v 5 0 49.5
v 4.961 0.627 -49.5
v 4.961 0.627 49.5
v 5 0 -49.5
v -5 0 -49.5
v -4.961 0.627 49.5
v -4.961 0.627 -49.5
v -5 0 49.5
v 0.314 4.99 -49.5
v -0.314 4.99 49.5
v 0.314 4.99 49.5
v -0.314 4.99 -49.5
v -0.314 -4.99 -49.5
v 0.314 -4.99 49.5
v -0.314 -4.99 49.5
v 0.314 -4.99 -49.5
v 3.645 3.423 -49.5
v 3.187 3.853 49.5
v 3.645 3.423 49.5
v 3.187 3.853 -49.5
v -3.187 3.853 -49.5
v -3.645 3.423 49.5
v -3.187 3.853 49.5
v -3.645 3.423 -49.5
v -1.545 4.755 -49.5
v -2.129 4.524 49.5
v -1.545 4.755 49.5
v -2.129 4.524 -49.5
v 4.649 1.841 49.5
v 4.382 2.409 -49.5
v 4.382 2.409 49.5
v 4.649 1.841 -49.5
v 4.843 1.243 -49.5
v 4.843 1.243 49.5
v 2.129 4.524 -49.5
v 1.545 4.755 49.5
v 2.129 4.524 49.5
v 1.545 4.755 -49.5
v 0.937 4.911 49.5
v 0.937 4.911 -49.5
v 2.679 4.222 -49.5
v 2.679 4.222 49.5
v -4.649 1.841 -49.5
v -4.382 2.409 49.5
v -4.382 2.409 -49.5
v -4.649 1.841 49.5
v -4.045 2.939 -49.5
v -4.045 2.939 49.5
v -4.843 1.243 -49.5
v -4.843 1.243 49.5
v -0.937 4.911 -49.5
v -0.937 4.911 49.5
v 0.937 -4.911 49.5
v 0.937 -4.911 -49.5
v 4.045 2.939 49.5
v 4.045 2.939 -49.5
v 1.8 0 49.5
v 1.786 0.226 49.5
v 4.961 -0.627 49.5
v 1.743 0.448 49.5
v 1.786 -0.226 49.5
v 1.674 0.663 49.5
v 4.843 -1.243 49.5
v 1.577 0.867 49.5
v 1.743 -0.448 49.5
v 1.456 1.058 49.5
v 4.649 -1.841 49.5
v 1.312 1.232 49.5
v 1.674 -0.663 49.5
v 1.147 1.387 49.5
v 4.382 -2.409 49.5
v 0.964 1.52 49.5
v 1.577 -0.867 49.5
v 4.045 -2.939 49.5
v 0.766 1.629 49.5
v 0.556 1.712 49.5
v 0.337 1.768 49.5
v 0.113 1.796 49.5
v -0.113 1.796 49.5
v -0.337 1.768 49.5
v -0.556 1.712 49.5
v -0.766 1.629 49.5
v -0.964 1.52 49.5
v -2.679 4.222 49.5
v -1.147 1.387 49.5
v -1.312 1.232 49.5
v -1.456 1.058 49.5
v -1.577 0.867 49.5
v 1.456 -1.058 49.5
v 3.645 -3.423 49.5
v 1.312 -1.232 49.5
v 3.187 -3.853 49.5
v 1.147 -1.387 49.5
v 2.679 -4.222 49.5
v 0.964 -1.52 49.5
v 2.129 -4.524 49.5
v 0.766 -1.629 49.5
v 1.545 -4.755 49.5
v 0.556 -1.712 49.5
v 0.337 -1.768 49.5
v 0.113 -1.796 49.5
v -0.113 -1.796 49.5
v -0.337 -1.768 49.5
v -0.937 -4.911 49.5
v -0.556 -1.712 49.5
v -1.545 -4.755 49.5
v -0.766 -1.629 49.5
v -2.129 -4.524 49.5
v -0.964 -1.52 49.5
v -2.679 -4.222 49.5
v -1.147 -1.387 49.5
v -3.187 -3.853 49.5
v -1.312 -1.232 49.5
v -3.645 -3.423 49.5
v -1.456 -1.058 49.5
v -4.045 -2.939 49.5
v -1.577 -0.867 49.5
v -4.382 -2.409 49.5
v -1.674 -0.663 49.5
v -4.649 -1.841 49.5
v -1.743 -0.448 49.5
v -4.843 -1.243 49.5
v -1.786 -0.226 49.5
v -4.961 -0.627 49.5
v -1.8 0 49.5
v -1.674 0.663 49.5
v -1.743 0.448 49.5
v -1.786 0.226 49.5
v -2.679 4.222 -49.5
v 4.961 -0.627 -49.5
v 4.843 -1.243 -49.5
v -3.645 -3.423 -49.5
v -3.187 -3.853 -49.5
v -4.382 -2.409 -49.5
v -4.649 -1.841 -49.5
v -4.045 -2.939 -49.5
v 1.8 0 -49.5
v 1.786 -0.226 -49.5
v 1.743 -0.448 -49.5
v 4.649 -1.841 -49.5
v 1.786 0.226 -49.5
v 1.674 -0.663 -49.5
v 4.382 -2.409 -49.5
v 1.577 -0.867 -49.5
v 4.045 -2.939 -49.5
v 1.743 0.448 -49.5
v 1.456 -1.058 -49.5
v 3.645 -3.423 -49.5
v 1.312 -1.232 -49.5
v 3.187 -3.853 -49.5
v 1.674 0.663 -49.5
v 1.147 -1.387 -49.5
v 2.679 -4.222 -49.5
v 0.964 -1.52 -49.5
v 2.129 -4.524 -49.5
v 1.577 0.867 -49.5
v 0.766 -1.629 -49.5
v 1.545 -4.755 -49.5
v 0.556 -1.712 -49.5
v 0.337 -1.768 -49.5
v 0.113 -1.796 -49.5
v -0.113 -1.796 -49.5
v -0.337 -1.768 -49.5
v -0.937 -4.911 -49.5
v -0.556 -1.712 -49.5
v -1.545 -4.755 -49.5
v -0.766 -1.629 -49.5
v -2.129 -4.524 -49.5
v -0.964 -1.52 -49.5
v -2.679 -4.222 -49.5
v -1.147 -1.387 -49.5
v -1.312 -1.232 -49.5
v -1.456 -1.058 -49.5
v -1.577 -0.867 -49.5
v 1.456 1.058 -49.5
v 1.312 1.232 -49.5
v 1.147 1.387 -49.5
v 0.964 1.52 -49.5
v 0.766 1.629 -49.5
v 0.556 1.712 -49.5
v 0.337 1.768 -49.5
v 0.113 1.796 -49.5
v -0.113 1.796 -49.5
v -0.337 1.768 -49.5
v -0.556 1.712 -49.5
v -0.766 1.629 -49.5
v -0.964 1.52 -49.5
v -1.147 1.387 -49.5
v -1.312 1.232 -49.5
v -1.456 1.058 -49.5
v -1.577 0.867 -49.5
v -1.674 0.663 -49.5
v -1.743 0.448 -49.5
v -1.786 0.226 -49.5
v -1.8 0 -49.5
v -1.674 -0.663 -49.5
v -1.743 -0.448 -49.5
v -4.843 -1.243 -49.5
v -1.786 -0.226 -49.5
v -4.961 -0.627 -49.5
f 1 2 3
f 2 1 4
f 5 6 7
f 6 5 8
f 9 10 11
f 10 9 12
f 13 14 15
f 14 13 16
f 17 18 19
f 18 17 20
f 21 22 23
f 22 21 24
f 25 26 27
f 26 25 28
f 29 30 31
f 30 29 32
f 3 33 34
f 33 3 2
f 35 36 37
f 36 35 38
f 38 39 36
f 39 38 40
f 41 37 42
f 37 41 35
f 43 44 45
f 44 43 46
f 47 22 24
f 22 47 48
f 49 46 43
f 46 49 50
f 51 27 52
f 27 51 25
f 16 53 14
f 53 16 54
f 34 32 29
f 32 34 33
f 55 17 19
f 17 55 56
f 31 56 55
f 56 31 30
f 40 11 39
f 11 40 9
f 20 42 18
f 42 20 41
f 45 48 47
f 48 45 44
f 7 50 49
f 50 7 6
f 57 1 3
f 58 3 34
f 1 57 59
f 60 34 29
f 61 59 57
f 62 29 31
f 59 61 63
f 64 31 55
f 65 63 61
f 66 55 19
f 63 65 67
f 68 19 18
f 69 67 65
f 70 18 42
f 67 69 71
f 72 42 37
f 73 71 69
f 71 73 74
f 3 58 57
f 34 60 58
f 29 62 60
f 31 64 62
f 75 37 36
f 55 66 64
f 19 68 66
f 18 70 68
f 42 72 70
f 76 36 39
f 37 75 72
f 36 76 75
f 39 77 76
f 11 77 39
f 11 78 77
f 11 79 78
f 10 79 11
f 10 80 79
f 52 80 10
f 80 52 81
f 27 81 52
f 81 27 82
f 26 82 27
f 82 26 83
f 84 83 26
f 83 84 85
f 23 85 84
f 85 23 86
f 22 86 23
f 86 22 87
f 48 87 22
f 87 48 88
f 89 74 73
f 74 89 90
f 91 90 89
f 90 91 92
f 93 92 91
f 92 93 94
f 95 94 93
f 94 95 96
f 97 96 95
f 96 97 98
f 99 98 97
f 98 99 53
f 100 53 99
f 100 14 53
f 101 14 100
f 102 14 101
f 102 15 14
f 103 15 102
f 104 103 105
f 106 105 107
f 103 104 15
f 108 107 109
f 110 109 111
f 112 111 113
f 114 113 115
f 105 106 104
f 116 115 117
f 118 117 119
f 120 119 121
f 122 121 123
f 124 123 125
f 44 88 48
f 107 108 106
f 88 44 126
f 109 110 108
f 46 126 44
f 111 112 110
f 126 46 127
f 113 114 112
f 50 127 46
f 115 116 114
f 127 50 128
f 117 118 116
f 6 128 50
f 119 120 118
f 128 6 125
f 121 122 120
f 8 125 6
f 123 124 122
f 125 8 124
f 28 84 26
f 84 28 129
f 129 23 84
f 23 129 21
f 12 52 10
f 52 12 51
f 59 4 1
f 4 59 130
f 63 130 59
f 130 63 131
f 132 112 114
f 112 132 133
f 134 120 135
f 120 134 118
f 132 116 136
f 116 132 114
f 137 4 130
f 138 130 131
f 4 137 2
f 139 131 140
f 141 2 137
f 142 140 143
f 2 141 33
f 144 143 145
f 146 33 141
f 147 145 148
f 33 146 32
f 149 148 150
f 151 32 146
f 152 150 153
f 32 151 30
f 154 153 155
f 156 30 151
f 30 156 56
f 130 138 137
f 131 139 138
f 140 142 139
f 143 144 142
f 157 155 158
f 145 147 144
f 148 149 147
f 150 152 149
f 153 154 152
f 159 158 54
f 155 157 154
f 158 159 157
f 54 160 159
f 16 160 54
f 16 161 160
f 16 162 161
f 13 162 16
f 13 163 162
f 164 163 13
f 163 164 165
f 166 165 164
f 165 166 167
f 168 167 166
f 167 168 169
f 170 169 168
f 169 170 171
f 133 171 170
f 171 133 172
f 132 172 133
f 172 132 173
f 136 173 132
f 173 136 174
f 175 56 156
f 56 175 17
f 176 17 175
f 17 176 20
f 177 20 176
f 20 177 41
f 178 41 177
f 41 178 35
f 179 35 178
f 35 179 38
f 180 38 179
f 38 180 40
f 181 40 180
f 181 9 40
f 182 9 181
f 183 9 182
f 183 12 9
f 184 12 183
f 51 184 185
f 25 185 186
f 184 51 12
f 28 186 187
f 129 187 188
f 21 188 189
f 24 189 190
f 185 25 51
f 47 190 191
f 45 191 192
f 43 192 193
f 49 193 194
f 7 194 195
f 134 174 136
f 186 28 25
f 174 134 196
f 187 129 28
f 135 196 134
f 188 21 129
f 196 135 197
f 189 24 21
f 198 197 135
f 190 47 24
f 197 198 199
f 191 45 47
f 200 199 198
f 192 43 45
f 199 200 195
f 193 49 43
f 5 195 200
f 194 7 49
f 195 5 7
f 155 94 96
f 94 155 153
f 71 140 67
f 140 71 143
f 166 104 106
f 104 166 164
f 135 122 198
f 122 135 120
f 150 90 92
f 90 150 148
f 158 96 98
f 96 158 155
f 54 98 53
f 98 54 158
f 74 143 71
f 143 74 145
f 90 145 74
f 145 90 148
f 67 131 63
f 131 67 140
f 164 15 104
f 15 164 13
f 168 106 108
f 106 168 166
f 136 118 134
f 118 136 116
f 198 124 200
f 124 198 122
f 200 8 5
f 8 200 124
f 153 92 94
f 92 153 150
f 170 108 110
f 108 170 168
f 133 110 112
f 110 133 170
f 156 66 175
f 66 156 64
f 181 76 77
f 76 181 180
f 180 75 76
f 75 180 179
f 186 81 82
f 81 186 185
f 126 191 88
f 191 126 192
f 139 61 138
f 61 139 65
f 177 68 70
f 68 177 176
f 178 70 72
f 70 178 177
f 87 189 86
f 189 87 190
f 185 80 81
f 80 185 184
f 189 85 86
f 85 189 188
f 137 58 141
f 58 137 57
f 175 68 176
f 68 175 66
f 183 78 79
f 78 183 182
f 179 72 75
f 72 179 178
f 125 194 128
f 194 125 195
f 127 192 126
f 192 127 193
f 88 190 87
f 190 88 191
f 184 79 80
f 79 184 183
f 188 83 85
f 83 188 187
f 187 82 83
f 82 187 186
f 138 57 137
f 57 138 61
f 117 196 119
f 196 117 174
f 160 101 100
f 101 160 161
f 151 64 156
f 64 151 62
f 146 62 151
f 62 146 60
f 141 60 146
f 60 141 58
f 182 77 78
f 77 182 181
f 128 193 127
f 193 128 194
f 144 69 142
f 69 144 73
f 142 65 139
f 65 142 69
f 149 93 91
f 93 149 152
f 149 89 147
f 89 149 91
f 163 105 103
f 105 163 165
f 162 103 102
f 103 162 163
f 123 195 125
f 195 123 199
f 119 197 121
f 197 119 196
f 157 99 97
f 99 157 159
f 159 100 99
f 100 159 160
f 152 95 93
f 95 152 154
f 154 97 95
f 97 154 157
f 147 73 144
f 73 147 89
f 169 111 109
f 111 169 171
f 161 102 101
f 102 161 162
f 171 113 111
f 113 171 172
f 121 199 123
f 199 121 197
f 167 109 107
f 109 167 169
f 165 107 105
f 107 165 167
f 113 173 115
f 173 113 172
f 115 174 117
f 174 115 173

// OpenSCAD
$fn = 50;


difference() {
	union() {
		translate(v = [0, 0, -49.5000000000]) {
			cylinder(h = 99, r = 5.0000000000);
		}
	}
	union() {
		translate(v = [0, 0, -100.0000000000]) {
			cylinder(h = 200, r = 1.8000000000);
		}
	}
}
